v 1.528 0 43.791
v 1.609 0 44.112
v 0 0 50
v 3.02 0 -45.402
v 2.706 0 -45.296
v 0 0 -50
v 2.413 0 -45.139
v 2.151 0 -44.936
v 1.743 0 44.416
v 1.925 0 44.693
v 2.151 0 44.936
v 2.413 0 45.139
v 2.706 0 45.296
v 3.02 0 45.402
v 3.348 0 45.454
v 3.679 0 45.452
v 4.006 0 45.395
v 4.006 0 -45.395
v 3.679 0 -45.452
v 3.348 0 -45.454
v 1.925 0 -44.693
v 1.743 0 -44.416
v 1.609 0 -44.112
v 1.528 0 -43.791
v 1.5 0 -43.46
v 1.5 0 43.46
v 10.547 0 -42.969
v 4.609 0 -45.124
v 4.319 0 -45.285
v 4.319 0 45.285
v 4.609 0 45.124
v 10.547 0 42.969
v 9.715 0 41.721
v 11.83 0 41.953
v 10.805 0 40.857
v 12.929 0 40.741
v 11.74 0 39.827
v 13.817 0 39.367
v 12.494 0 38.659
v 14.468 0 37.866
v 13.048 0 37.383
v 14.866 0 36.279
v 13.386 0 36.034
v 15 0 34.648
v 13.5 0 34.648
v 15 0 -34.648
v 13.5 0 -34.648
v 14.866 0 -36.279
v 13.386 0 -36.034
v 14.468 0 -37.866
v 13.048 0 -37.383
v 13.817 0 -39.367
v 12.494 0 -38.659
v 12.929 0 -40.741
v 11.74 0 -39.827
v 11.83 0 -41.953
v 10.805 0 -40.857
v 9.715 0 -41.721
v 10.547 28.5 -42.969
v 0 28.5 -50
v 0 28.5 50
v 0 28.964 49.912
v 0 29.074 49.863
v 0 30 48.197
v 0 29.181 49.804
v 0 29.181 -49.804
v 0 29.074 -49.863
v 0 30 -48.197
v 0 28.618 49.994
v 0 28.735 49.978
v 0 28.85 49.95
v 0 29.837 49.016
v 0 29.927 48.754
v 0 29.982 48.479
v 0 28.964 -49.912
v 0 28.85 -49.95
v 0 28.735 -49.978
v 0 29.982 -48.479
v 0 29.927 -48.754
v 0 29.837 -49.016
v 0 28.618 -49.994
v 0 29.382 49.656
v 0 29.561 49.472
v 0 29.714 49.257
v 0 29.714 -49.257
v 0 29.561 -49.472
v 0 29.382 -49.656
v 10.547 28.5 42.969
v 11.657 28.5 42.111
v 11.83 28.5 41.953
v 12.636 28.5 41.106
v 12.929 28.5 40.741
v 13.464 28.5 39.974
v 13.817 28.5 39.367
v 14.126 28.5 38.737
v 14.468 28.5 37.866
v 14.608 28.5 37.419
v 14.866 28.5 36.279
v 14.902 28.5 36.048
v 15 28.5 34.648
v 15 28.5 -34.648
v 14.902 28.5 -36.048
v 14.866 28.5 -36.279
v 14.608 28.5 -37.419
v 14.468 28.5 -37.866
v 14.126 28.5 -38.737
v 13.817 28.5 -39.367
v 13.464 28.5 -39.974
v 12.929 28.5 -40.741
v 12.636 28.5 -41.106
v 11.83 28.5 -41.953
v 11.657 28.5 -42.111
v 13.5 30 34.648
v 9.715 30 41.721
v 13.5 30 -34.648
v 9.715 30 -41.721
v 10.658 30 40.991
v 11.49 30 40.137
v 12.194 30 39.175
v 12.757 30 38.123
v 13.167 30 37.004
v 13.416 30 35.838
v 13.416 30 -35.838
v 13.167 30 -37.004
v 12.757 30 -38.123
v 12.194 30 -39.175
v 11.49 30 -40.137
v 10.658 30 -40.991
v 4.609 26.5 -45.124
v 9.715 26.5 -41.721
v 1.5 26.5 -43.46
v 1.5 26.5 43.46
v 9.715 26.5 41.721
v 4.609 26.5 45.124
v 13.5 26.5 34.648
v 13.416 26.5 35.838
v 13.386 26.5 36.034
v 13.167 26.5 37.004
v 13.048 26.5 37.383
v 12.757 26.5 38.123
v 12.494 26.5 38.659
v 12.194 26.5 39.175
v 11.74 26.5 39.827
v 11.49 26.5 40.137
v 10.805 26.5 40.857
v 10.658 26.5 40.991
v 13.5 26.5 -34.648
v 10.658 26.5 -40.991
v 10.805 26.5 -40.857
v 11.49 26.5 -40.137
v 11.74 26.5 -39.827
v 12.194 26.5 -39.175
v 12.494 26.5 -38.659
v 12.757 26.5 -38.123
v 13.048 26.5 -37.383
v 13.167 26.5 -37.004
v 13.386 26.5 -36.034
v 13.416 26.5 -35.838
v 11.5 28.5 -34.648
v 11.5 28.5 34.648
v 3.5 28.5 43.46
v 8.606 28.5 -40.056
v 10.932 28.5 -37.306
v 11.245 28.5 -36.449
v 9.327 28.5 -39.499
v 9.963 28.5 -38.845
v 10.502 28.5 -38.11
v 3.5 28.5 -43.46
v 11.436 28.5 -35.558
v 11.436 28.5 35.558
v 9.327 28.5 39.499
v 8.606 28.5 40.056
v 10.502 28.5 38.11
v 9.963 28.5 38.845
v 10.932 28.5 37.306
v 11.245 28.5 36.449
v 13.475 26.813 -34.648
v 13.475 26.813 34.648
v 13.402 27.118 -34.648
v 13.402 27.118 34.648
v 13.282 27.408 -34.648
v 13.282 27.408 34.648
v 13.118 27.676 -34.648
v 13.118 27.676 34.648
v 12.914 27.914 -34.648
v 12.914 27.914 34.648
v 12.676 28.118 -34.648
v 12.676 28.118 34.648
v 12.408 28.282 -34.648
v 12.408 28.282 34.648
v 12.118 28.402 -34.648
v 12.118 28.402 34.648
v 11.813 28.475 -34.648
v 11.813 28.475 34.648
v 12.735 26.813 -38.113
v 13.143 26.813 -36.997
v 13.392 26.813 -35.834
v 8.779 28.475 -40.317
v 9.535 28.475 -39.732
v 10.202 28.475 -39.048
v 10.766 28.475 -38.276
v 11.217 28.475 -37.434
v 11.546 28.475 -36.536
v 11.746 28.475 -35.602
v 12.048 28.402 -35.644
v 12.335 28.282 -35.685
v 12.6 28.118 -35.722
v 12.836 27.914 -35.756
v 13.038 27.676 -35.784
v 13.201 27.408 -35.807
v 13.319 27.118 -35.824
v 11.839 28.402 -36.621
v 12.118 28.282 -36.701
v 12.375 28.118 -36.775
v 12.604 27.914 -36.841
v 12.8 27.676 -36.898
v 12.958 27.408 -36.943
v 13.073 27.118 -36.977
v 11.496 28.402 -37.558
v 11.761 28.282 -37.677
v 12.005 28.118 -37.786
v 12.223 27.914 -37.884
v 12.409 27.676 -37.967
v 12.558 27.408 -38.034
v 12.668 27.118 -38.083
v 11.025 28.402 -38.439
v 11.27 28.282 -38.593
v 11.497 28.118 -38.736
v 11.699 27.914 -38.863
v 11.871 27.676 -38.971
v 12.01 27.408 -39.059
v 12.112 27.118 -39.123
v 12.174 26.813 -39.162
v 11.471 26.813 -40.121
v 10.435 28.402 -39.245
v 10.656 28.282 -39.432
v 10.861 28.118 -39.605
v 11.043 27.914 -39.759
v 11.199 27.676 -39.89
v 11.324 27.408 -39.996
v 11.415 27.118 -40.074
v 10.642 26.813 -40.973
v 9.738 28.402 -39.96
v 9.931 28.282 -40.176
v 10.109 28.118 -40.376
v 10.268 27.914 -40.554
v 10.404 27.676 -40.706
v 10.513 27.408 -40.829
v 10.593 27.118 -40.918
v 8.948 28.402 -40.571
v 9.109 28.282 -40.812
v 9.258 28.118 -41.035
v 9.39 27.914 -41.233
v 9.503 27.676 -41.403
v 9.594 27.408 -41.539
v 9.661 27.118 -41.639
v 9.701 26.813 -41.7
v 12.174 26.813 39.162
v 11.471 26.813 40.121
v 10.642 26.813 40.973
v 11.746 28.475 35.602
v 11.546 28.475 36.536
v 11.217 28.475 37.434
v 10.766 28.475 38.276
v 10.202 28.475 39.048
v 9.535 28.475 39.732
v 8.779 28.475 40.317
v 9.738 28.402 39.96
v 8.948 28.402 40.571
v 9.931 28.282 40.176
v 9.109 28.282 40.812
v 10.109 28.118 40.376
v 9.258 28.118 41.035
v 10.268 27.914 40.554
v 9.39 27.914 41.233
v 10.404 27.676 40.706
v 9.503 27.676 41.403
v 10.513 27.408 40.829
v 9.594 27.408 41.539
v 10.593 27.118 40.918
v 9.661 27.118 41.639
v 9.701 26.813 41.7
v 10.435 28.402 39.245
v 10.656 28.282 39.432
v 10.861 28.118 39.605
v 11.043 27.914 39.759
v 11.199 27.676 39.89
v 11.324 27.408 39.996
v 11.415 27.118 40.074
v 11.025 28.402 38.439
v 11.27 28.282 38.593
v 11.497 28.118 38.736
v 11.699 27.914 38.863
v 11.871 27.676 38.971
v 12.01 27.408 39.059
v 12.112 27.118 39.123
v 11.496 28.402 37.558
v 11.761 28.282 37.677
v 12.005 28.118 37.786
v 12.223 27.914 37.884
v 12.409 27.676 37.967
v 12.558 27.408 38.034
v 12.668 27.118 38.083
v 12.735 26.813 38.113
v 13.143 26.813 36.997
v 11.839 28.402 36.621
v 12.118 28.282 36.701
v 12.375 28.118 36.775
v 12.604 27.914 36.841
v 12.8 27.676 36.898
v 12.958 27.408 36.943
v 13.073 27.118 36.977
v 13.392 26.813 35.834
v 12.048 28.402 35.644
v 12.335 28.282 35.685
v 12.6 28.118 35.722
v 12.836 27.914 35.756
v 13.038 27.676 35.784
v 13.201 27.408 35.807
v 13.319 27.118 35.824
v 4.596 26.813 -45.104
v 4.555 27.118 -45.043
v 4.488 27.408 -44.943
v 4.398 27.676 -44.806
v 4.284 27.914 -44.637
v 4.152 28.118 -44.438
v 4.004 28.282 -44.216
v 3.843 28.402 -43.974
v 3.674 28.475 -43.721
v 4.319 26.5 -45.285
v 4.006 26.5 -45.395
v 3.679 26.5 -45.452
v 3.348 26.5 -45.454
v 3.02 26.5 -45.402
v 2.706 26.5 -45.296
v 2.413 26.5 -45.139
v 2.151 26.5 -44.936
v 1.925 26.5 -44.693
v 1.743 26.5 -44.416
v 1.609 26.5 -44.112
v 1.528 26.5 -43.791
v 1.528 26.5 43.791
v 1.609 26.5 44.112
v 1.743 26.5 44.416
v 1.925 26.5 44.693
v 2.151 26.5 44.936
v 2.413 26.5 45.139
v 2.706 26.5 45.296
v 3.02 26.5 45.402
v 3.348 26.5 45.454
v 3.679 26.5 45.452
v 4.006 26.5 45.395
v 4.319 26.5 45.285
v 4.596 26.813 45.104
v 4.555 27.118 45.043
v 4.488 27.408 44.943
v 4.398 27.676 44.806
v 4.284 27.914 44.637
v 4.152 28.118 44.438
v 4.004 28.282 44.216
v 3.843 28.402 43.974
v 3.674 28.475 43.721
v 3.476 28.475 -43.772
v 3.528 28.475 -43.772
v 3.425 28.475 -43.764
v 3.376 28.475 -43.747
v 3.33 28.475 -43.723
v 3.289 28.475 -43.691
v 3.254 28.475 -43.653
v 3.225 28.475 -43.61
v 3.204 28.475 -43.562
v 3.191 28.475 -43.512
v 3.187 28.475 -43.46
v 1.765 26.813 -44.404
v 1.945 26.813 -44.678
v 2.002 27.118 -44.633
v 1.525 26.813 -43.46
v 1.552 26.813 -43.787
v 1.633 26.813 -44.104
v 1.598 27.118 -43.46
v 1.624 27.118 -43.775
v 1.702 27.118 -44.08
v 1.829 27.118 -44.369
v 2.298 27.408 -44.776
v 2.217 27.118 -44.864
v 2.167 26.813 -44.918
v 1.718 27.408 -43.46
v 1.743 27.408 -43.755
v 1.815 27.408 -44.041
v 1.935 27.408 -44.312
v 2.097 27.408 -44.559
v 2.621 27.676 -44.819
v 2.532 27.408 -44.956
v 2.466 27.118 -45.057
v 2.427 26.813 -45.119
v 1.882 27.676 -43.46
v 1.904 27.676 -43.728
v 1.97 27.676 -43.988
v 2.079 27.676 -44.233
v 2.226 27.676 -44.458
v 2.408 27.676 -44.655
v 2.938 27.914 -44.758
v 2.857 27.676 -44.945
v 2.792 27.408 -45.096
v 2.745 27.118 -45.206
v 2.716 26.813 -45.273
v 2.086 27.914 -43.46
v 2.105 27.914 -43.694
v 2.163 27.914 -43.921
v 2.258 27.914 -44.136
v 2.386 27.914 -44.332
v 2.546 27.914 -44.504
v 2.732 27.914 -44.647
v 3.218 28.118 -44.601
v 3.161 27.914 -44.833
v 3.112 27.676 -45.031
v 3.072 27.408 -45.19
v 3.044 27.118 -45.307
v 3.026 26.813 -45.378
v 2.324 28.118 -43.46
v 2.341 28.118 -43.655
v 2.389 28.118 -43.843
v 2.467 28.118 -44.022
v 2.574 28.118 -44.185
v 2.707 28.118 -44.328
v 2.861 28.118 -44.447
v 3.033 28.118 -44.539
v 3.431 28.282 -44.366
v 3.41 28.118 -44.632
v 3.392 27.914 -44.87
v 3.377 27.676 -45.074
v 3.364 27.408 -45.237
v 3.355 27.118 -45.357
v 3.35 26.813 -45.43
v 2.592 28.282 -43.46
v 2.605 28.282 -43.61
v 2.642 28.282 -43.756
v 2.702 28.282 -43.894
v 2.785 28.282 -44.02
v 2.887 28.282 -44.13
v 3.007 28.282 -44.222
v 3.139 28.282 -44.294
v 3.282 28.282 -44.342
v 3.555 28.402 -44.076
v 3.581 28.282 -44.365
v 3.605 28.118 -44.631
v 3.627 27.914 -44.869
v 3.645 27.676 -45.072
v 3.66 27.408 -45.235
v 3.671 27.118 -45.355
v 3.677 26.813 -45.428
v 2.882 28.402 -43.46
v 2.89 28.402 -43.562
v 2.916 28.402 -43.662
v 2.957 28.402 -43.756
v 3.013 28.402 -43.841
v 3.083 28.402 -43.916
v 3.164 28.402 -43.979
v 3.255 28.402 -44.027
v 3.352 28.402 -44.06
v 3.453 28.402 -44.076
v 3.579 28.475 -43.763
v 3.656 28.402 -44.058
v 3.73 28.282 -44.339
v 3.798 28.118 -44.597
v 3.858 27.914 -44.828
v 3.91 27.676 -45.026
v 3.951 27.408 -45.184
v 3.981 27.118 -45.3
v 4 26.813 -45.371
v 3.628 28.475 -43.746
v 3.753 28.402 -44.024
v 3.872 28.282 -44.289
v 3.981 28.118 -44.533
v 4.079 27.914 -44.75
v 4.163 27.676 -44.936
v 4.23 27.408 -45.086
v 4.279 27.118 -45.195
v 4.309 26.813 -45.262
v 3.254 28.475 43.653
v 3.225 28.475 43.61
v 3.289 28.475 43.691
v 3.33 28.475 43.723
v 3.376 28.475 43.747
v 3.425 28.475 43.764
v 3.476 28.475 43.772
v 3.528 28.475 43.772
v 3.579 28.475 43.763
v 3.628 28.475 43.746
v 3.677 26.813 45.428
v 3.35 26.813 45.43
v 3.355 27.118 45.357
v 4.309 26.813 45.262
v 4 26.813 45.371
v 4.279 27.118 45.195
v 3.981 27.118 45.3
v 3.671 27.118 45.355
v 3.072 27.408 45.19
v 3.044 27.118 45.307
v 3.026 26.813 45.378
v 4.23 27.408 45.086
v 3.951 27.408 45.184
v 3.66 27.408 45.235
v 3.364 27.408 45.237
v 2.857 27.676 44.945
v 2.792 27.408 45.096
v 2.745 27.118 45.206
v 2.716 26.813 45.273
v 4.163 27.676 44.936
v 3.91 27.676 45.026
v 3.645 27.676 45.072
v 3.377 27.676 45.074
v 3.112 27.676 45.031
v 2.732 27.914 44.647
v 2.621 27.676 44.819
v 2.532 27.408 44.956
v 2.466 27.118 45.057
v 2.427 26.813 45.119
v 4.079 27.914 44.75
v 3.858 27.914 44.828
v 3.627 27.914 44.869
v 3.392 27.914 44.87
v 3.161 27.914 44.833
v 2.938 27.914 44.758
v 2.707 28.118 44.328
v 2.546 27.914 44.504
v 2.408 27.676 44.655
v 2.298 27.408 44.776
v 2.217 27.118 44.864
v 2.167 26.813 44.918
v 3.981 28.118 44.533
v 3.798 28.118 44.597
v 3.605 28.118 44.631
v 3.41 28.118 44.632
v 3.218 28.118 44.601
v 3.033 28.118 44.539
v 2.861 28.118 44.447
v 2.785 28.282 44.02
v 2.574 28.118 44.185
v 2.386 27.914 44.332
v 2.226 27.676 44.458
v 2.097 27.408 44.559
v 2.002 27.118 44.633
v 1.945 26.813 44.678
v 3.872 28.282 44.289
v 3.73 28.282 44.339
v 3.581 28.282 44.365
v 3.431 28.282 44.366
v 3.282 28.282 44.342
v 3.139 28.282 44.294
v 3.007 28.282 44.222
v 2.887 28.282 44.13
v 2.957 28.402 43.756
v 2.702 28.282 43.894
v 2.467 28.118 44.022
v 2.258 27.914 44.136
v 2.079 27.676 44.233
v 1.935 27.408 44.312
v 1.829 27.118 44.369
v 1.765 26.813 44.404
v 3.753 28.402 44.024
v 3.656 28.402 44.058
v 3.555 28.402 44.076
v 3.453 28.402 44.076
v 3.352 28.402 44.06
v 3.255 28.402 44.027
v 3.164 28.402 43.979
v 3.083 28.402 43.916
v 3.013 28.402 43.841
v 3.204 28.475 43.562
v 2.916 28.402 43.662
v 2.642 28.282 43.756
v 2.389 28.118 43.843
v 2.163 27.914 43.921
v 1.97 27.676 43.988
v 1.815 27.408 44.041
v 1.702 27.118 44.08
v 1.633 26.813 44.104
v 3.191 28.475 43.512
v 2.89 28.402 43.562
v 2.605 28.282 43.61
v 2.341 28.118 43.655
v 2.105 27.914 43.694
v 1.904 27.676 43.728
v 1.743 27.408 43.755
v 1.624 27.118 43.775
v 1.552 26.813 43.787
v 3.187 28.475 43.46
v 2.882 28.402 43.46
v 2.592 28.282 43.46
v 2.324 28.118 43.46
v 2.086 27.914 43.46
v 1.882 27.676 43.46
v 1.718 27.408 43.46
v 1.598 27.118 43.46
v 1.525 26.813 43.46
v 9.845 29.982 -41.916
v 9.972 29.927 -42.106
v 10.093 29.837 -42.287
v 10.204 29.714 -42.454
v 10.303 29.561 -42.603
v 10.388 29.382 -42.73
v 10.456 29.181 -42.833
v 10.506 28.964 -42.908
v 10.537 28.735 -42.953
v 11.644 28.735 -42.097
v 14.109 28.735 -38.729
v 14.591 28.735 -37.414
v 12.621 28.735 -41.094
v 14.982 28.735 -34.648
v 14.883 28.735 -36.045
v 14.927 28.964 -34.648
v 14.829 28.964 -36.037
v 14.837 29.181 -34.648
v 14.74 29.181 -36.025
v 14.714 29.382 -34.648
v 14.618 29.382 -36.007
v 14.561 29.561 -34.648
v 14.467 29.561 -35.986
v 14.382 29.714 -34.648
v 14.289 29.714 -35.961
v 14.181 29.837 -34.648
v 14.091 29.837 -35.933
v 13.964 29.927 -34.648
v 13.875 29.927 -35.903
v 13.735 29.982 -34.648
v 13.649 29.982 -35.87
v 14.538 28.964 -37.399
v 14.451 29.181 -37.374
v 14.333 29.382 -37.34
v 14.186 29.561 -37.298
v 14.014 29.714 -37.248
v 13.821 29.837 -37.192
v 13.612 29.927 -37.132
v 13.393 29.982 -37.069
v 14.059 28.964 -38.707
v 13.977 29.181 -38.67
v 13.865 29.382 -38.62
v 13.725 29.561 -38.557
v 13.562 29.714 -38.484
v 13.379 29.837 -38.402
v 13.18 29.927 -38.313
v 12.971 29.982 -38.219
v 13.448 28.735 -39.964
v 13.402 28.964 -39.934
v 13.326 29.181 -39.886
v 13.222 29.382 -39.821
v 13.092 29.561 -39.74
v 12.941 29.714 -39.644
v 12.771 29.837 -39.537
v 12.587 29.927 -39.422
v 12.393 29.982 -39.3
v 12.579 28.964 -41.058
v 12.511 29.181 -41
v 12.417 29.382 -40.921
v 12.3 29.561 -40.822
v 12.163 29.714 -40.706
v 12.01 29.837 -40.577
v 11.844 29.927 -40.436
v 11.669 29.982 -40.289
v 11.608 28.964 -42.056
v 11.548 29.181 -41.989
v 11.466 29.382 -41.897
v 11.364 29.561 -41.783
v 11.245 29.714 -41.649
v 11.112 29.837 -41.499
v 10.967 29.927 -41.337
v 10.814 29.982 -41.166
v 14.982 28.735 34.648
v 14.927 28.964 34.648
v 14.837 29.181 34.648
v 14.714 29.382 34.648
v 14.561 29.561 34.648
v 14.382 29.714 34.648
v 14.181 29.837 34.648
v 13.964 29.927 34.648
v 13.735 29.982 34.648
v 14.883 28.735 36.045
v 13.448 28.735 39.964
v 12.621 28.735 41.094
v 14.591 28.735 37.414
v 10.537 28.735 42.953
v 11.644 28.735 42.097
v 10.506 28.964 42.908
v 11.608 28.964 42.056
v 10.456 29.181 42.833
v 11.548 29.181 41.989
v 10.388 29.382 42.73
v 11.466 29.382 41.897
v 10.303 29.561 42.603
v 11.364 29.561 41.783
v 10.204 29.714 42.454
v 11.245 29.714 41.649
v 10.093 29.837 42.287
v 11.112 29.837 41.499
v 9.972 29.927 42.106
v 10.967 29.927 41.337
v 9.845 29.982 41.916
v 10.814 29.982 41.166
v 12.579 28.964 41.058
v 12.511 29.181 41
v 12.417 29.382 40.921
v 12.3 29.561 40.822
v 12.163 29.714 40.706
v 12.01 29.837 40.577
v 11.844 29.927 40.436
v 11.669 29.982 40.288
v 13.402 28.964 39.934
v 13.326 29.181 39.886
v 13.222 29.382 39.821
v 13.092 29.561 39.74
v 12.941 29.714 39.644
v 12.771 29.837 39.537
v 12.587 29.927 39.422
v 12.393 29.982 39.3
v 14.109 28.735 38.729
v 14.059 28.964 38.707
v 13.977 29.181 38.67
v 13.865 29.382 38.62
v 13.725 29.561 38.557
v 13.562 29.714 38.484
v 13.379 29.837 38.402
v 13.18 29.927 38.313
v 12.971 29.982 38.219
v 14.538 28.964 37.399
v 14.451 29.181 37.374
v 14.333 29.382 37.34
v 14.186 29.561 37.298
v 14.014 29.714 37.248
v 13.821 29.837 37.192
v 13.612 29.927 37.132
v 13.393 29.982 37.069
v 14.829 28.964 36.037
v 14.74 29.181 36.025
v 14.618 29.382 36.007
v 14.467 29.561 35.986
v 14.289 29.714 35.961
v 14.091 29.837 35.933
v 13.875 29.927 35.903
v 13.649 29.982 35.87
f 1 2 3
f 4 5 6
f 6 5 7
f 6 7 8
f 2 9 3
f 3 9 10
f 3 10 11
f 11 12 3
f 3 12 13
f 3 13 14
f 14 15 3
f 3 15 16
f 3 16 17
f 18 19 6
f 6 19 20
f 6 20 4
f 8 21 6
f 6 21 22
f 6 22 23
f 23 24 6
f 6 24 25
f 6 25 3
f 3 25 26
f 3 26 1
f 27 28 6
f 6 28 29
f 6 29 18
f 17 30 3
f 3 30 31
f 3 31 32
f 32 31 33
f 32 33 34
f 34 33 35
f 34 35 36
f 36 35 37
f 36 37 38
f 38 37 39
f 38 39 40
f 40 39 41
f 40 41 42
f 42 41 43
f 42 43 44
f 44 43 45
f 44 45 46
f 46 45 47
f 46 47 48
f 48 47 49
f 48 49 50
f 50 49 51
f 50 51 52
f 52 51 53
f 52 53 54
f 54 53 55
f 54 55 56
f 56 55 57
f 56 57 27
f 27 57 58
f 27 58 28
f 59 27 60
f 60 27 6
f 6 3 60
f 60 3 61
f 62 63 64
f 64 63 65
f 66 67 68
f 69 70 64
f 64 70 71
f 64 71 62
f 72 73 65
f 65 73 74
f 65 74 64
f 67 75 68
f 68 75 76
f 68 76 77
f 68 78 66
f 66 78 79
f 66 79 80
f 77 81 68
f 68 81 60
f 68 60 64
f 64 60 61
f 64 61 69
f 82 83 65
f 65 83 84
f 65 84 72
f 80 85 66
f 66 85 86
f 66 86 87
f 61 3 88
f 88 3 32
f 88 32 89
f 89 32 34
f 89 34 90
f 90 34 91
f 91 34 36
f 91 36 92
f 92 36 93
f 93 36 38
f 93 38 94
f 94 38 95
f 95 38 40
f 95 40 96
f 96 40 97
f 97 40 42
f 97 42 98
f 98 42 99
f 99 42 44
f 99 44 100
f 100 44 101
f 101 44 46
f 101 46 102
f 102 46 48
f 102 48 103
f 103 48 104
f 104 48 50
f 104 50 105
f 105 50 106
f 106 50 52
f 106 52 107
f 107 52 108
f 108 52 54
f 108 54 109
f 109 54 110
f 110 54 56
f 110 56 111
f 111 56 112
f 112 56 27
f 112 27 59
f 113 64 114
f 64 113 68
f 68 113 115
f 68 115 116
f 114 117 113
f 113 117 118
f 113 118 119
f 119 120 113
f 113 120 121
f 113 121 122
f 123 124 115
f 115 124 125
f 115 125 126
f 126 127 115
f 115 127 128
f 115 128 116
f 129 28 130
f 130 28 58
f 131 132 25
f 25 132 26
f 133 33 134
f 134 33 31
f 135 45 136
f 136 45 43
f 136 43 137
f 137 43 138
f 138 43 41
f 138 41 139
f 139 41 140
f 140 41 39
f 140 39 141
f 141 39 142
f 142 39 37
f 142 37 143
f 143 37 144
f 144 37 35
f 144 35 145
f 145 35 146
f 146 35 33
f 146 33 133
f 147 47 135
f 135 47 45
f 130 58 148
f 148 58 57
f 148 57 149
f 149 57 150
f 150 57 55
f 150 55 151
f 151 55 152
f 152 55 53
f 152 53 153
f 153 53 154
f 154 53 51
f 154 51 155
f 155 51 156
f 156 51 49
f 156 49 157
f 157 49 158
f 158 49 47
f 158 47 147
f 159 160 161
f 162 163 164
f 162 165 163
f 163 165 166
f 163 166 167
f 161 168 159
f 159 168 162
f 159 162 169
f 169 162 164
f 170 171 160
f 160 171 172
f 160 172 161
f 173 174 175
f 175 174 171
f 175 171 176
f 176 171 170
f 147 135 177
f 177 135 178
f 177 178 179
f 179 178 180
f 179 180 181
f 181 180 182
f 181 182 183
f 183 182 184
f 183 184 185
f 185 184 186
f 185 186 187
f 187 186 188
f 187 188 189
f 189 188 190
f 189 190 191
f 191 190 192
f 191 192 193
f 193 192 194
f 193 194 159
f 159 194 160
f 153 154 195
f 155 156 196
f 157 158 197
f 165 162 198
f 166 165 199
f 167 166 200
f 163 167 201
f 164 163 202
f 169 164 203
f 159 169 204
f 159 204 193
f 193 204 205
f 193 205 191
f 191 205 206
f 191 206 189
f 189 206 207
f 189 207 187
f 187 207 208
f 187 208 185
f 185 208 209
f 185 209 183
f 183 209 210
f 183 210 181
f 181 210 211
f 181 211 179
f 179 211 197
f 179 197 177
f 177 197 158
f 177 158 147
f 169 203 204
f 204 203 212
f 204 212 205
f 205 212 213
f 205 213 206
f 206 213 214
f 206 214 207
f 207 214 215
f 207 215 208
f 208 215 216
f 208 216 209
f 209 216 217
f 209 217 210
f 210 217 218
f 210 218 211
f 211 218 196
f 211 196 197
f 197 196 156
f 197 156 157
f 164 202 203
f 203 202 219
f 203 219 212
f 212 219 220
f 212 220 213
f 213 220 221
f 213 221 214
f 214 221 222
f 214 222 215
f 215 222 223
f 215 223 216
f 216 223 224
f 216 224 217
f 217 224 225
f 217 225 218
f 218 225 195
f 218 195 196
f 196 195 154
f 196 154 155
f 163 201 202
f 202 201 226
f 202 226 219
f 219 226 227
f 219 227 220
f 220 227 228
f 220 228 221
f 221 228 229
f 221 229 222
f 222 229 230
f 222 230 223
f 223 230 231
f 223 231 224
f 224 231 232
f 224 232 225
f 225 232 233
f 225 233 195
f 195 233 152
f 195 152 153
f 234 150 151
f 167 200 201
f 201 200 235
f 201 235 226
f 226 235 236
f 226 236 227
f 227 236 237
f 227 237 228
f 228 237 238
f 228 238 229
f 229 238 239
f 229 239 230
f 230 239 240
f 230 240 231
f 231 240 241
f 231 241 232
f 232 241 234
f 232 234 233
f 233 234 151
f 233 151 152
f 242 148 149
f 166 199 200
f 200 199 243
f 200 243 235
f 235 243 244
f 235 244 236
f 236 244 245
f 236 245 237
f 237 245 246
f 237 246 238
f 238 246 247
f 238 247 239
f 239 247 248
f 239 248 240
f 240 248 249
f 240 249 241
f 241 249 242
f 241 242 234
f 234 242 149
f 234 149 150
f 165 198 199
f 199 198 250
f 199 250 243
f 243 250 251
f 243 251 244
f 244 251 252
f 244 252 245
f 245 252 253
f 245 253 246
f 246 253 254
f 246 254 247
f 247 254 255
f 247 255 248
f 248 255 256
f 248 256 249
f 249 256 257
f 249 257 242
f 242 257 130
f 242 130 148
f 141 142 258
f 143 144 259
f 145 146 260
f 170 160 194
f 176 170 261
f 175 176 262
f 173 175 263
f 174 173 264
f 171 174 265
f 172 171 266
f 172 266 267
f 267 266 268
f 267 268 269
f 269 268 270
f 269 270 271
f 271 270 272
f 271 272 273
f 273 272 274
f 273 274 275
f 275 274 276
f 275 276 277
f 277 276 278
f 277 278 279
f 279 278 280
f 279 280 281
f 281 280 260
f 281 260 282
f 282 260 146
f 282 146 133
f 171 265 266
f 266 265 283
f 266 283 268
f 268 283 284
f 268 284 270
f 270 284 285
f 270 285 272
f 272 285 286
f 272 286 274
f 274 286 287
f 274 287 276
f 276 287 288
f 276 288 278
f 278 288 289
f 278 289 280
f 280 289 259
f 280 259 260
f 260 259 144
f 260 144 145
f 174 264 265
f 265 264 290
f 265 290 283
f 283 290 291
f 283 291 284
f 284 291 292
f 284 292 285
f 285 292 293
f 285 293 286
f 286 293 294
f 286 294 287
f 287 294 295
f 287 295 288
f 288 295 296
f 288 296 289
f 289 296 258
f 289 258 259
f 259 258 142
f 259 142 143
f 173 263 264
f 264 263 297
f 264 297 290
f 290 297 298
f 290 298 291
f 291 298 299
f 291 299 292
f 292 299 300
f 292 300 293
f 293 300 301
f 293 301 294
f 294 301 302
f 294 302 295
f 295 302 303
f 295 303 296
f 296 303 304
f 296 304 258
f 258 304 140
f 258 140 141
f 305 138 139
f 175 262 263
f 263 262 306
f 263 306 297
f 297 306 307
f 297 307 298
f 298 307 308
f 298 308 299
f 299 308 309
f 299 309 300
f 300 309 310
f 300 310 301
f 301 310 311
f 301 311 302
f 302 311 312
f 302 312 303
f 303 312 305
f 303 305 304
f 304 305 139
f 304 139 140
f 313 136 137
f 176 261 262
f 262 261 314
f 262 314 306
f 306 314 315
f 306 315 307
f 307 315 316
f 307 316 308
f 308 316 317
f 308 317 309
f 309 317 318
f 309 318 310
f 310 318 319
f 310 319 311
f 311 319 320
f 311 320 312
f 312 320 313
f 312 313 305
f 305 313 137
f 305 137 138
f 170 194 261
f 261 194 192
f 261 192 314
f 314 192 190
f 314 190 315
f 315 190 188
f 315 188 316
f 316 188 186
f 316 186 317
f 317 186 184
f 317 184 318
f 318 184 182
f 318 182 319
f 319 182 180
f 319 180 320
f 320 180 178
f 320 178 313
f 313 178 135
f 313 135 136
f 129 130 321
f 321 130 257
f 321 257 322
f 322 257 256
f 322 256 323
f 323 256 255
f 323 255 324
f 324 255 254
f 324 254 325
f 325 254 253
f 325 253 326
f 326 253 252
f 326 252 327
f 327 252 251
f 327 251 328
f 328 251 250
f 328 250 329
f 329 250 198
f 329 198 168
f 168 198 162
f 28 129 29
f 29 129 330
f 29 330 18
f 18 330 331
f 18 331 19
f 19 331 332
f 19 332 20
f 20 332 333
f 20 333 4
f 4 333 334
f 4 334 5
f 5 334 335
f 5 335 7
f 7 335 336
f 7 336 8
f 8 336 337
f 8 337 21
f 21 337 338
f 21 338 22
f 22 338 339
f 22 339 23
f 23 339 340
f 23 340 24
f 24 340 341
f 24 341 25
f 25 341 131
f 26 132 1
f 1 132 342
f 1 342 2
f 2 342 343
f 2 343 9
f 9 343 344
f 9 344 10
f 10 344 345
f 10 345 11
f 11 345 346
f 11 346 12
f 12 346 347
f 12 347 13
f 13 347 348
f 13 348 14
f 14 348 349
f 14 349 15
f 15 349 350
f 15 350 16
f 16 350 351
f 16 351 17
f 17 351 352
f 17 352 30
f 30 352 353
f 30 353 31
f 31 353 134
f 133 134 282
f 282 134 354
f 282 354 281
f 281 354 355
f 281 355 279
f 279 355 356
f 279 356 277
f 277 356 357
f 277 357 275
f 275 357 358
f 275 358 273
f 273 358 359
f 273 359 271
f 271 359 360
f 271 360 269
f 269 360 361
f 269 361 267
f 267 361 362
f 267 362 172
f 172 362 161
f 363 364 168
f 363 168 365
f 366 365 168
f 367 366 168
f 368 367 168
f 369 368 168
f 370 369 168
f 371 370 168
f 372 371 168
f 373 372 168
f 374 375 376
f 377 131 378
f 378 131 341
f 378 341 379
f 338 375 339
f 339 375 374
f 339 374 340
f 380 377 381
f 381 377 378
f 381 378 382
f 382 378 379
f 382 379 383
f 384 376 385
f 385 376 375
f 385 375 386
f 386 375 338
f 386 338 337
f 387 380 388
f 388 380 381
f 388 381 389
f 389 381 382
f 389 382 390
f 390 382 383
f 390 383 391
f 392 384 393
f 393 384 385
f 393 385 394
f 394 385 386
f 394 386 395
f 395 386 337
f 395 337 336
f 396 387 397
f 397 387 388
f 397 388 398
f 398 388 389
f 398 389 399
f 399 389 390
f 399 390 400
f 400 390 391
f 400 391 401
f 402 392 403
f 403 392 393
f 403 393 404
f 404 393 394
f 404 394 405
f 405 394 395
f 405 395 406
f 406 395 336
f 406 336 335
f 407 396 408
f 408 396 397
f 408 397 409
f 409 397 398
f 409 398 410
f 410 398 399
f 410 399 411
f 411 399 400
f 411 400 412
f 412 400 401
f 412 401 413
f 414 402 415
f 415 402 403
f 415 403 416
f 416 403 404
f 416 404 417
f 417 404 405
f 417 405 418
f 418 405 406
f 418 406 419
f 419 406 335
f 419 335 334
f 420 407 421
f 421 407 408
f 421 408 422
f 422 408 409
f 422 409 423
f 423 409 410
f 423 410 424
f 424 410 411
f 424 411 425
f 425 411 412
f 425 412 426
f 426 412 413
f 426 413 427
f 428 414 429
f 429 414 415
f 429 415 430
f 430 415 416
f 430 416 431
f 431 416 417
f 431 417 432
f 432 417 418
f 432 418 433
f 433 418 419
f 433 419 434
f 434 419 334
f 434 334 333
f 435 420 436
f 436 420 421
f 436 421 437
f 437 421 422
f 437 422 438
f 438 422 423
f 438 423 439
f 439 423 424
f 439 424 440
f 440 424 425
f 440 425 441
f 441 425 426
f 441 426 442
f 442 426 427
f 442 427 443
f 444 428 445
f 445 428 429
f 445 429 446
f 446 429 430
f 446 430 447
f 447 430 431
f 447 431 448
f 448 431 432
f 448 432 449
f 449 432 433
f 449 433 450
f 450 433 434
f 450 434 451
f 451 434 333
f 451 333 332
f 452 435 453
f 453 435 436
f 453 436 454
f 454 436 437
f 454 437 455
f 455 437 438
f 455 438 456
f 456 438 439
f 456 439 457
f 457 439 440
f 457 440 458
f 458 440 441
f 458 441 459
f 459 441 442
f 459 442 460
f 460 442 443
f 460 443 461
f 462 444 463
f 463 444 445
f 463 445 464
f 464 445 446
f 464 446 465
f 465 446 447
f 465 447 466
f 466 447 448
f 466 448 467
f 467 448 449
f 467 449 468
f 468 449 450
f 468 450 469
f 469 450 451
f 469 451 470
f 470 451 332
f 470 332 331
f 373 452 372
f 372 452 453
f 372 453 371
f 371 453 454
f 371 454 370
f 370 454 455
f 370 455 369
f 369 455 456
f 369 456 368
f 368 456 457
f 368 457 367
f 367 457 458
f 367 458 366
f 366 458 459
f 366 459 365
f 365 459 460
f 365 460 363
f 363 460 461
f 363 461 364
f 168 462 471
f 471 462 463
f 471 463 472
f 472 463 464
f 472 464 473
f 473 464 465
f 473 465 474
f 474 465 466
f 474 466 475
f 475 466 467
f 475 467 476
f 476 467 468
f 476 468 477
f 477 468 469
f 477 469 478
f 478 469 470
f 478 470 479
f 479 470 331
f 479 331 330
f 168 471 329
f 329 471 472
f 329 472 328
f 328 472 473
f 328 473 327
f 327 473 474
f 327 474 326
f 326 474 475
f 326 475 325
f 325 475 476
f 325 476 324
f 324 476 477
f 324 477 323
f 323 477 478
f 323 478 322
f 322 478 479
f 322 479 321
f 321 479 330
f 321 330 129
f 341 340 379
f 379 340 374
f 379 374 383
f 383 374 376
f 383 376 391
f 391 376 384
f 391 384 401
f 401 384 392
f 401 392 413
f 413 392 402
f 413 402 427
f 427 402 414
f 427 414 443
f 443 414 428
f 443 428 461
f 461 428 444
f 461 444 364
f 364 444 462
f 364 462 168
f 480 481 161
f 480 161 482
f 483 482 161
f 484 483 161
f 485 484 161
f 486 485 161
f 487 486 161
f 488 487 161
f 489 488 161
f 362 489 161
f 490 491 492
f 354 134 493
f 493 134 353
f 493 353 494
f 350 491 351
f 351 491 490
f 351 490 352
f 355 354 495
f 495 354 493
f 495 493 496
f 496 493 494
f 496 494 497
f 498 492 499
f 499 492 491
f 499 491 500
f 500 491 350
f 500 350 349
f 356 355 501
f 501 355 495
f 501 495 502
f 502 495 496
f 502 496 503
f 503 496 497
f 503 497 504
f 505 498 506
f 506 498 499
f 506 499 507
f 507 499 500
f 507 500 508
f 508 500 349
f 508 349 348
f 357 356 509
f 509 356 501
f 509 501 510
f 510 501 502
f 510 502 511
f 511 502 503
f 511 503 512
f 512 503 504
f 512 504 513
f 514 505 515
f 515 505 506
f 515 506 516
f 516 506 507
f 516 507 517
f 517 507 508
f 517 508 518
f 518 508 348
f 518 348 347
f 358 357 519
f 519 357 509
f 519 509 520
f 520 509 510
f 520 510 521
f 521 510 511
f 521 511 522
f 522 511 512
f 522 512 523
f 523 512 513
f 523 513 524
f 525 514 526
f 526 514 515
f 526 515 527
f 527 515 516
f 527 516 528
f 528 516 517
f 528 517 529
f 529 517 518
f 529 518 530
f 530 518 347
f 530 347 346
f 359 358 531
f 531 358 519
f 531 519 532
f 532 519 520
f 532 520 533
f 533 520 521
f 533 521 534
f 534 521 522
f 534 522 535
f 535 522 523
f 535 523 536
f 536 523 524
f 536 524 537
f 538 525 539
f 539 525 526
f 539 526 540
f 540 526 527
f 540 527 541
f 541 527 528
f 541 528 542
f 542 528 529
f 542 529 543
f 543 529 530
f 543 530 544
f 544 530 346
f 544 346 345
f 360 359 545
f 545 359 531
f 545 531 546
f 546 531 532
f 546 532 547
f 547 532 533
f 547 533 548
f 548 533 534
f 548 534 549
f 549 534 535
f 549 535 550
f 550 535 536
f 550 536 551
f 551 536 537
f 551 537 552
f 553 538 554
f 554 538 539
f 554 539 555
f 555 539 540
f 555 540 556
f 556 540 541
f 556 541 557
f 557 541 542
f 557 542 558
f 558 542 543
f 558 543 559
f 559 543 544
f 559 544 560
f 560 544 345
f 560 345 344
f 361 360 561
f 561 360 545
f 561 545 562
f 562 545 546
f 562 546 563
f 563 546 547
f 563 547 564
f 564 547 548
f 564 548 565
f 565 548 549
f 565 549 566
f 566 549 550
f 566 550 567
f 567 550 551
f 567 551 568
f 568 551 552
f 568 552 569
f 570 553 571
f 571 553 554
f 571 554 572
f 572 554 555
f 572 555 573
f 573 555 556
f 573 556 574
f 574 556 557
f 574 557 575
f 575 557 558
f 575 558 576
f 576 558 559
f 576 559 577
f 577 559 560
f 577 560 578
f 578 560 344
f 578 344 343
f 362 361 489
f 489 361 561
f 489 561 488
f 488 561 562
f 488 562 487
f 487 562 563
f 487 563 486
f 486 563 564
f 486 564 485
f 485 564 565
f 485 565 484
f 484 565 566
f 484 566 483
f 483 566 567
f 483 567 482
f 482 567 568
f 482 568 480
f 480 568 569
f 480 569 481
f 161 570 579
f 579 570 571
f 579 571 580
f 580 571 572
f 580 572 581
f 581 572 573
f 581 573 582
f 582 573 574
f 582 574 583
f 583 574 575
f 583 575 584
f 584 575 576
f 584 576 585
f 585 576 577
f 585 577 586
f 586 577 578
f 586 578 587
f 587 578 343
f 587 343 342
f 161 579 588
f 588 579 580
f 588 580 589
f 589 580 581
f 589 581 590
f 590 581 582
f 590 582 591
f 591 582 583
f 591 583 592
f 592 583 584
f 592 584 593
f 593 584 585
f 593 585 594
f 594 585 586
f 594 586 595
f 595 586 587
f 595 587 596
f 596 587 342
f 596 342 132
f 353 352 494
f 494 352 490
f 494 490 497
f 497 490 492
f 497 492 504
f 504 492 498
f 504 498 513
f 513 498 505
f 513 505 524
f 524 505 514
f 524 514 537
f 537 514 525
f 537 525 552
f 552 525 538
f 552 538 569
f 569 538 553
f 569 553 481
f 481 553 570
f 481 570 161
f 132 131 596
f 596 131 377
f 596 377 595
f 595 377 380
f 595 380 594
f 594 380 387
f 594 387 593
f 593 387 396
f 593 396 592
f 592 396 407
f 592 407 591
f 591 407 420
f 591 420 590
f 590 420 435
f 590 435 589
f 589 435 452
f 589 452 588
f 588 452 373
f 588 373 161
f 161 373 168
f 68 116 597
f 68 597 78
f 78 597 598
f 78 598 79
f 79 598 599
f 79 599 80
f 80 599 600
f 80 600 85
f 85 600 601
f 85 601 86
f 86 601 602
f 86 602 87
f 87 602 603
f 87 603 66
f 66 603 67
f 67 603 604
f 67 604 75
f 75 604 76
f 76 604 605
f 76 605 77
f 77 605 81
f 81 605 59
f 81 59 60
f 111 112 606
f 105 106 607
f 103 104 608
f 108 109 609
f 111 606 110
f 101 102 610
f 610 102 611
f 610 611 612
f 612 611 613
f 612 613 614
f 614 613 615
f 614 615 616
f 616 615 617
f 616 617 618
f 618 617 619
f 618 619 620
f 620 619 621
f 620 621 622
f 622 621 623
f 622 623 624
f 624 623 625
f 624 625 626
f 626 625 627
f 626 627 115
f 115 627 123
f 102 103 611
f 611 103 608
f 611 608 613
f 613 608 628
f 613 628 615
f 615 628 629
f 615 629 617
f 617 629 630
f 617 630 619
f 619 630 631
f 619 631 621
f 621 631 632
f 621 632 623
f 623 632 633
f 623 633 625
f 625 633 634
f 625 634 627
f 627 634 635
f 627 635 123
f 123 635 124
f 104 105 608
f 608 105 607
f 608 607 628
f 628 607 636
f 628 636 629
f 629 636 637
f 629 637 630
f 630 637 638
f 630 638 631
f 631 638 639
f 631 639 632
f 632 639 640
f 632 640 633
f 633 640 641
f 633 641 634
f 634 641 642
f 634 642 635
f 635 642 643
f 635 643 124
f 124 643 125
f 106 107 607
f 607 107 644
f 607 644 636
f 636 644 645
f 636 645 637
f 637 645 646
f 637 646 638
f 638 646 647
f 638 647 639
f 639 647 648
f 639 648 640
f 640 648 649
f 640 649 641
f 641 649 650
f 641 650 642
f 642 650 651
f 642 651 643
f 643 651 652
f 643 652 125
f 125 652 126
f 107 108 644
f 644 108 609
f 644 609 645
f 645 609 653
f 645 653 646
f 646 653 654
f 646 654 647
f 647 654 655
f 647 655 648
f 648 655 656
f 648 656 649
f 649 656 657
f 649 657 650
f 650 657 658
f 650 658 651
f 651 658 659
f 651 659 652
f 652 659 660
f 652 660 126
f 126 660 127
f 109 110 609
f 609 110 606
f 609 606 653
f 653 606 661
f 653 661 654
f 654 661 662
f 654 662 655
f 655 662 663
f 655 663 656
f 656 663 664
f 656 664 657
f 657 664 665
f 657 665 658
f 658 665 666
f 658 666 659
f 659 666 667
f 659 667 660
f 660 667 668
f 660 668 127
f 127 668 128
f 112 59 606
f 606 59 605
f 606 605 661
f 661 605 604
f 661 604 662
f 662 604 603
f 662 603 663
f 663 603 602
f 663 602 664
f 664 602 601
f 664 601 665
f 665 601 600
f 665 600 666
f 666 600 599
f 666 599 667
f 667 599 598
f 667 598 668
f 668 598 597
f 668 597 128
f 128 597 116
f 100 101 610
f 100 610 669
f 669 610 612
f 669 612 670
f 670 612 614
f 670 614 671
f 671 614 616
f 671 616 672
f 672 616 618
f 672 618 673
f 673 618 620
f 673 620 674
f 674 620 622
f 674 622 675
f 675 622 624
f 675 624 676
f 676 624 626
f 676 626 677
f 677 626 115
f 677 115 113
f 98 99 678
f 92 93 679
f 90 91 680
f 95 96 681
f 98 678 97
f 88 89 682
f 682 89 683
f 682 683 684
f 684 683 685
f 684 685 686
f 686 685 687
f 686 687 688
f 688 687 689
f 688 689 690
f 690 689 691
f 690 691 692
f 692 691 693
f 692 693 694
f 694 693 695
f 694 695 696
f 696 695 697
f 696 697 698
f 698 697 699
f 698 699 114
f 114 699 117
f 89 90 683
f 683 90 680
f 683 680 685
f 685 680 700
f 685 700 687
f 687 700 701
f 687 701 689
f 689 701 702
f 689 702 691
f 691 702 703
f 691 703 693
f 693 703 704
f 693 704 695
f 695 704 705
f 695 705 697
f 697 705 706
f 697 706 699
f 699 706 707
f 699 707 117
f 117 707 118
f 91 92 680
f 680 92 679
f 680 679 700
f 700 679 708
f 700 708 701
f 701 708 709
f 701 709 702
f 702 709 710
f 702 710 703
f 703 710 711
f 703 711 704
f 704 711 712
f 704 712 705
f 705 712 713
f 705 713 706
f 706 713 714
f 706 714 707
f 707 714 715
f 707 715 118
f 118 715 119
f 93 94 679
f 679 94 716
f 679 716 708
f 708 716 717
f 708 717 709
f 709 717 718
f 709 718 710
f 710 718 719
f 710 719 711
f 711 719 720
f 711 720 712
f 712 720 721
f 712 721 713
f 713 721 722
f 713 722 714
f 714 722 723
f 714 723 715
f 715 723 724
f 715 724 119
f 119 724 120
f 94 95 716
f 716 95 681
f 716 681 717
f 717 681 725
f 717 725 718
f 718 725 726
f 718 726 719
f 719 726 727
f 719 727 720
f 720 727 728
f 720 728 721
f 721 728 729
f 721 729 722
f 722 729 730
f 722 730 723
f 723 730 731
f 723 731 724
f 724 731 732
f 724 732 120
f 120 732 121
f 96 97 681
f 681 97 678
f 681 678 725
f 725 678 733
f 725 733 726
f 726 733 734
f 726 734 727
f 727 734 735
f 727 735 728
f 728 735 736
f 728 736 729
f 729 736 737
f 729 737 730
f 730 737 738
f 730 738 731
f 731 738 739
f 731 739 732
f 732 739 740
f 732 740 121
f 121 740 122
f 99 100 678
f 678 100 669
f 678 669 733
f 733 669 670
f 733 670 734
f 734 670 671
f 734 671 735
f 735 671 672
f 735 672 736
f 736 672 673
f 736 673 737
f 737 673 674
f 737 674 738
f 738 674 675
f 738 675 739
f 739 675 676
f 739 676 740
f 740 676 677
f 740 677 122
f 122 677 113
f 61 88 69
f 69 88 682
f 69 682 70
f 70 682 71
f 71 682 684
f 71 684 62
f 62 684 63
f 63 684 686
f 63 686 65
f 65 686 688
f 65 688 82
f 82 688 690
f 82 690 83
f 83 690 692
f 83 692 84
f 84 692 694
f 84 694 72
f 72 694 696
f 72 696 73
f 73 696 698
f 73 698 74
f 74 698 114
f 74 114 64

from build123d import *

# Parameters (mm, degrees)
BOSS_EXTRUDE1_DEPTH = 30
SHELL1_T            = -1.5
FILLET1_R           = 2
FILLET2_R           = 1.5


with BuildPart() as part:
    # Sketch1 → Boss-Extrude1 (new body)
    with BuildSketch(Plane(origin=(0, 0, 0), x_dir=(1, 0, 0), z_dir=(0, 1, 0))):
        with BuildLine():
            Line((0, -50), (0, 50))
            Line((0, 50), (10.547001962, 42.968665358))
            ThreePointArc((10.547001962, 42.968665358), (13.816745988, 39.36674167), (15, 34.648162415))
            Line((15, 34.648162415), (15, -34.648162415))
            ThreePointArc((15, -34.648162415), (13.816745988, -39.36674167), (10.547001962, -42.968665358))
            Line((10.547001962, -42.968665358), (0, -50))
        make_face()
    extrude(amount=BOSS_EXTRUDE1_DEPTH)

    # Shell1
    shell1_openings = [part.faces().sort_by_distance(p)[0] for p in [
        (7.177503817, 0, 0),
    ]]
    offset(amount=SHELL1_T, openings=shell1_openings, kind=Kind.INTERSECTION)

    # Fillet1
    fillet1_edges = [part.edges().sort_by_distance(p)[0] for p in [
        (1.5, 14.25, -47.197224362),
        (1.5, 14.25, 47.197224362),
        (5.607475834, 28.5, -44.45890714),
        (1.5, 28.5, 0),
        (5.607475834, 28.5, 44.45890714),
        (12.49423409, 28.5, 38.658954782),
        (13.5, 28.5, 0),
        (12.49423409, 28.5, -38.658954782),
    ]]
    fillet(fillet1_edges, radius=FILLET1_R)

    # Fillet2
    fillet2_edges = [part.edges().sort_by_distance(p)[0] for p in [
        (5.273500981, 30, 46.484332679),
        (13.816745988, 30, 39.36674167),
        (15, 30, 0),
        (13.816745988, 30, -39.36674167),
        (5.273500981, 30, -46.484332679),
    ]]
    fillet(fillet2_edges, radius=FILLET2_R)


solid = part.part
